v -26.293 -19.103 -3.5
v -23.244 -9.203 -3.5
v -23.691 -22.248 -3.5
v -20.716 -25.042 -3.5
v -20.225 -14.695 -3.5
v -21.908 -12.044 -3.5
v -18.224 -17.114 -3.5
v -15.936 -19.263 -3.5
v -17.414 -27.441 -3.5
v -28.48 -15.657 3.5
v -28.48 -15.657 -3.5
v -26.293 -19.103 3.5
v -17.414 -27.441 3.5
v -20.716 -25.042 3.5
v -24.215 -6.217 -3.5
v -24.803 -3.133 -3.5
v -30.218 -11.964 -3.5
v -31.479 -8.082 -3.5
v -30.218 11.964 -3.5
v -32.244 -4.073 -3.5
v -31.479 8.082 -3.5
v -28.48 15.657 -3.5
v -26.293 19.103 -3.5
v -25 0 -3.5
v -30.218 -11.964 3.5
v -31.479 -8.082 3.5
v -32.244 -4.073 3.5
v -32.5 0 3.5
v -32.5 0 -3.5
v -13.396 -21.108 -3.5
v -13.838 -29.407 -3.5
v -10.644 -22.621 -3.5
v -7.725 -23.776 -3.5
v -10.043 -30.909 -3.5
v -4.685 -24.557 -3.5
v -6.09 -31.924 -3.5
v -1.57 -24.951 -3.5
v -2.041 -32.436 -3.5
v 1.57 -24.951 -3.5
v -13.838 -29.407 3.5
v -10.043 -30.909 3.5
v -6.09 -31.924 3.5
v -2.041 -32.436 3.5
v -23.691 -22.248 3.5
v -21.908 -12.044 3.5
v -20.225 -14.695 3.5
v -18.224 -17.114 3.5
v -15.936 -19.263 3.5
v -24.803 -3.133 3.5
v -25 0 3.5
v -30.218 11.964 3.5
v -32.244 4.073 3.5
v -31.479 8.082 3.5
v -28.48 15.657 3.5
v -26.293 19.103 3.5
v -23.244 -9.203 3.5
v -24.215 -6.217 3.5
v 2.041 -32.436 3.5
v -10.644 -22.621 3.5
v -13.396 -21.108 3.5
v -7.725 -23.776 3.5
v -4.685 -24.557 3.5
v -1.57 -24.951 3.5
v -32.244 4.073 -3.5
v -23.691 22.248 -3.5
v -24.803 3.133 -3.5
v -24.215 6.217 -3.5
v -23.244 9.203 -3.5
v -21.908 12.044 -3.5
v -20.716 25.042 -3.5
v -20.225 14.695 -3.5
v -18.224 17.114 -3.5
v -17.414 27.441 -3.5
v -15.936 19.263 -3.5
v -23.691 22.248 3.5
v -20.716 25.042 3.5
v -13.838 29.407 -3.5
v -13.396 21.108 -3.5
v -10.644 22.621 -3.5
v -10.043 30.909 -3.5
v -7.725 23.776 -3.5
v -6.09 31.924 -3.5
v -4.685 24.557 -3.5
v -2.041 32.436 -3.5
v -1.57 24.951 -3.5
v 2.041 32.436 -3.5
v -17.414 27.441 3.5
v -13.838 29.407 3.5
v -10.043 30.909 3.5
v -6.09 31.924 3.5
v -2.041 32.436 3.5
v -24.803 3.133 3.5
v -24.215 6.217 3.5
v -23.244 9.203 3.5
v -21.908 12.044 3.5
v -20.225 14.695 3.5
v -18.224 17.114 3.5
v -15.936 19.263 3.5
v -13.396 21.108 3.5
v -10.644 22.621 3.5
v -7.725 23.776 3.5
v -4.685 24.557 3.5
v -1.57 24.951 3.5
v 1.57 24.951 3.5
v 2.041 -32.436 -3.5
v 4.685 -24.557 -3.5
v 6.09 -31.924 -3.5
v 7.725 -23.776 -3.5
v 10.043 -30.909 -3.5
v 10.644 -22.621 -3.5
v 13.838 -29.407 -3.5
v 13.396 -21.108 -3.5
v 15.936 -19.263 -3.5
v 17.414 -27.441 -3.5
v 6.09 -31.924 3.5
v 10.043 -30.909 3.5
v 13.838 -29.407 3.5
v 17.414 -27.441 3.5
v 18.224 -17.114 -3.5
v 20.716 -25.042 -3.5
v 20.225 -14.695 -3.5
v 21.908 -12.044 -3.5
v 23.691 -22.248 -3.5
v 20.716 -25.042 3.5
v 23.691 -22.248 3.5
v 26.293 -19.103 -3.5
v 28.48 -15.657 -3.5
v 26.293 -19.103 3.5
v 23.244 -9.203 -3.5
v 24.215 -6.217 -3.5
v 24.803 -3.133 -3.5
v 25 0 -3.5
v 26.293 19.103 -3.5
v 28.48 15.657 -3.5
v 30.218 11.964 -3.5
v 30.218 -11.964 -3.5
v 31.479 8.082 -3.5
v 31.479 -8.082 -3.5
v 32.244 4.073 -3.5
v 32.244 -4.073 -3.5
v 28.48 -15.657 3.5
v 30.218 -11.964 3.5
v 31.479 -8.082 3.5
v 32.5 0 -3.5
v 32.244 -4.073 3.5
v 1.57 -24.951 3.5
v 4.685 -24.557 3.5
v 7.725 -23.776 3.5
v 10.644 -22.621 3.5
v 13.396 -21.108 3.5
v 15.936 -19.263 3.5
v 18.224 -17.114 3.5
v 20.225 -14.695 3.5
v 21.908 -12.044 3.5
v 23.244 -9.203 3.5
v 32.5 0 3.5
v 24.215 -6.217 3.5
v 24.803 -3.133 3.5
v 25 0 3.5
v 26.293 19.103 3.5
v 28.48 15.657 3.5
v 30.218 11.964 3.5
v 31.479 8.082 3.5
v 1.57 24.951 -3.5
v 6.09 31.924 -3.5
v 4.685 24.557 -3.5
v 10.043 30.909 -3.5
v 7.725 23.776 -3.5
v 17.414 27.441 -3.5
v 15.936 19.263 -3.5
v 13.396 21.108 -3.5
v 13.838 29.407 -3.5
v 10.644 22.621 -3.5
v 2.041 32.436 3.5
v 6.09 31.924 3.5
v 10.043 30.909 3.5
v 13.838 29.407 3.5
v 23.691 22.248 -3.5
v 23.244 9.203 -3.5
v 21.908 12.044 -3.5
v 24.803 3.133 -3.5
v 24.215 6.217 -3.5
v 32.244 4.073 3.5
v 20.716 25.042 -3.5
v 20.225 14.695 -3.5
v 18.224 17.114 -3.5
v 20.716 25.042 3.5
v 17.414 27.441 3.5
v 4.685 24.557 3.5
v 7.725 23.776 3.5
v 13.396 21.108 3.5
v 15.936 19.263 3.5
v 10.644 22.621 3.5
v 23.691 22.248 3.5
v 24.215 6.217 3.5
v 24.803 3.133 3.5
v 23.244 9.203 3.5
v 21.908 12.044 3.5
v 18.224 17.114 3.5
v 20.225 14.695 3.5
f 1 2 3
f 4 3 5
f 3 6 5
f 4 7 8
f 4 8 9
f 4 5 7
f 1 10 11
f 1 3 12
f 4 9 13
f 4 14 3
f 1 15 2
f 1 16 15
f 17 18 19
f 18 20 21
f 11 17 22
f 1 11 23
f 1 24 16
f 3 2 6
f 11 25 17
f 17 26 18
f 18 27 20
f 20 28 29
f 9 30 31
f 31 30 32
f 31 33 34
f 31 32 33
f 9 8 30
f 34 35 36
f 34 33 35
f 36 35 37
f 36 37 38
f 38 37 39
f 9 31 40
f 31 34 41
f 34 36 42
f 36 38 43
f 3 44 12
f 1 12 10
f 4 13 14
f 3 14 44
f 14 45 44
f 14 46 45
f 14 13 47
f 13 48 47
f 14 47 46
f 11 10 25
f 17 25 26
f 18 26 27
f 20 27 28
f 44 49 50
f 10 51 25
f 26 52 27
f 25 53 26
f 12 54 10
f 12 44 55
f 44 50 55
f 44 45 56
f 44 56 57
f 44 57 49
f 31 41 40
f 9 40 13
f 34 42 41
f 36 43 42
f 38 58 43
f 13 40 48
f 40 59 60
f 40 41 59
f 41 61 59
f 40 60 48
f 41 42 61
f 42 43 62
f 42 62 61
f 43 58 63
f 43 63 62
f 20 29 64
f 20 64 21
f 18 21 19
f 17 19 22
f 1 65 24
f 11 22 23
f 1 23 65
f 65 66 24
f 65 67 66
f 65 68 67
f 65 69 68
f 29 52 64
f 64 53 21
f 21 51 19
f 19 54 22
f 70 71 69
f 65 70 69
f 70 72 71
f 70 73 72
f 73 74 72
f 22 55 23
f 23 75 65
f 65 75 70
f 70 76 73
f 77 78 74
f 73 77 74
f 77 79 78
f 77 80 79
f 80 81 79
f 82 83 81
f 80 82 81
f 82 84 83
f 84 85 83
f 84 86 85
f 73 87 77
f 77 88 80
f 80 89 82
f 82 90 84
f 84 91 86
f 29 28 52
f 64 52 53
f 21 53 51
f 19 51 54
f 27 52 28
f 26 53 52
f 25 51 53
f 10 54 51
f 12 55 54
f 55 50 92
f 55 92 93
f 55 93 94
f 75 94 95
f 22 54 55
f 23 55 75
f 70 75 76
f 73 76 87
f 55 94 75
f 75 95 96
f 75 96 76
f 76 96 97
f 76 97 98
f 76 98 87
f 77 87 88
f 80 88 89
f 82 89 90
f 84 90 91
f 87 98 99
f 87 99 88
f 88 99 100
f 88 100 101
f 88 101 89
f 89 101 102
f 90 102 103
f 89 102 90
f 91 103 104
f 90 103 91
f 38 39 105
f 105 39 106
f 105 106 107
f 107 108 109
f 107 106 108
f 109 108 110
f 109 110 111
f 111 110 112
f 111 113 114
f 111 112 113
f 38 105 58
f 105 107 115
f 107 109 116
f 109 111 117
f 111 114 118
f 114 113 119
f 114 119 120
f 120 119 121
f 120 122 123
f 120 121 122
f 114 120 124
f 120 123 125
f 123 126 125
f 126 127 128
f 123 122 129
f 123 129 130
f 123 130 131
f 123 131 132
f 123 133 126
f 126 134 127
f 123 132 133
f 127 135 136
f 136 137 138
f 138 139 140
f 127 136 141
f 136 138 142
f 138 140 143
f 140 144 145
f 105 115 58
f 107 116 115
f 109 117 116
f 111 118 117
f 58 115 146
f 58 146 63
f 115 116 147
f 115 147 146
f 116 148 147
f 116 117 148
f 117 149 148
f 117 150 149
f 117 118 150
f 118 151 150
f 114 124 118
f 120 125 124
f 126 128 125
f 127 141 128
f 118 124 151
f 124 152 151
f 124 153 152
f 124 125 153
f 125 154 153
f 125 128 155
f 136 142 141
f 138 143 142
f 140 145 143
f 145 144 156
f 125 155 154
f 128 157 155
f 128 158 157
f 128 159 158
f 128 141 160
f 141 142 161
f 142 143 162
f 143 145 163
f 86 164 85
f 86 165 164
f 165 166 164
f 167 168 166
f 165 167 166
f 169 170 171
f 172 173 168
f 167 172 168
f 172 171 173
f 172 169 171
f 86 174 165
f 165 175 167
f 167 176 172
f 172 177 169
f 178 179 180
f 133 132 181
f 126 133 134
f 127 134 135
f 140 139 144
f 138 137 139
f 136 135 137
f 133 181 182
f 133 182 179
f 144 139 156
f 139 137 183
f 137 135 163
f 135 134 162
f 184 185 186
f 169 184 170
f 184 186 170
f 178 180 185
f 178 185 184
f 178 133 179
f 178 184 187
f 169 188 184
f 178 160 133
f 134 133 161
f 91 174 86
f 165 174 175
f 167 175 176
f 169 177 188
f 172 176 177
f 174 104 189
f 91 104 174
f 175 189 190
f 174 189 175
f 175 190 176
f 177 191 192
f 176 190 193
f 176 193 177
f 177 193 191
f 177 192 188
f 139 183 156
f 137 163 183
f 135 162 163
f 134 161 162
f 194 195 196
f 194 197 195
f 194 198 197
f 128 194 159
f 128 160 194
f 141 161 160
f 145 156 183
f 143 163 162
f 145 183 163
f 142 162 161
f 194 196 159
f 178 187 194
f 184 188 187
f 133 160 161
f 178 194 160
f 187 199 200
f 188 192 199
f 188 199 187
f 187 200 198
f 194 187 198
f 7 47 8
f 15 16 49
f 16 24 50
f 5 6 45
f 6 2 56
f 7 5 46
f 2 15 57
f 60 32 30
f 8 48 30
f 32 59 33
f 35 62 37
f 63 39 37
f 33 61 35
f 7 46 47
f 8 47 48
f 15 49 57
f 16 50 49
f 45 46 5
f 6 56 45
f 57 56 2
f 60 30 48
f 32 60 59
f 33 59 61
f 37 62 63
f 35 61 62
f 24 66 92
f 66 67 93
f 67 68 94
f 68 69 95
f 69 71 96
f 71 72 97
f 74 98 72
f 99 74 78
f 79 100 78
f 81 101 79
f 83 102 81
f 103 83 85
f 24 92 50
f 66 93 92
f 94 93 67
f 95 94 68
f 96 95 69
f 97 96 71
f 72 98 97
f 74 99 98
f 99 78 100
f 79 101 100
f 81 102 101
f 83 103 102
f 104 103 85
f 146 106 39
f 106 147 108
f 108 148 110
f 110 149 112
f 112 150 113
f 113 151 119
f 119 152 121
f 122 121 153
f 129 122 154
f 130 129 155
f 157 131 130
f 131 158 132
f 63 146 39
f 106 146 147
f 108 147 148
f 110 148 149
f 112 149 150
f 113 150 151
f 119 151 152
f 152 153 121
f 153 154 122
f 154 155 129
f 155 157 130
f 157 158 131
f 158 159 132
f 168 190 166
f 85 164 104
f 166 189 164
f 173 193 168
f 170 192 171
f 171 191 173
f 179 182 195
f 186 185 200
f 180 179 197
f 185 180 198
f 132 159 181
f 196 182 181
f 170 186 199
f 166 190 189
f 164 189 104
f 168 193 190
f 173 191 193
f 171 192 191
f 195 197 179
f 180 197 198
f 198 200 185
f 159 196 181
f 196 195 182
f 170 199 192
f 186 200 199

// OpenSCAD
$fn = 50;

difference() {
	union() {
		translate(v = [0, 0, 0]) {
			rotate(a = [0, 0, 0]) {
				difference() {
					union() {
						translate(v = [0, 0, -3.5]) {
							cylinder(h = 7, r = 32.5);
						}
					}
					union() {
						translate(v = [0, 0, -3.51]) {
							cylinder(h = 7.02, r = 25.0);
						}
					}
				}
			}
		}
	}
	union();
}
